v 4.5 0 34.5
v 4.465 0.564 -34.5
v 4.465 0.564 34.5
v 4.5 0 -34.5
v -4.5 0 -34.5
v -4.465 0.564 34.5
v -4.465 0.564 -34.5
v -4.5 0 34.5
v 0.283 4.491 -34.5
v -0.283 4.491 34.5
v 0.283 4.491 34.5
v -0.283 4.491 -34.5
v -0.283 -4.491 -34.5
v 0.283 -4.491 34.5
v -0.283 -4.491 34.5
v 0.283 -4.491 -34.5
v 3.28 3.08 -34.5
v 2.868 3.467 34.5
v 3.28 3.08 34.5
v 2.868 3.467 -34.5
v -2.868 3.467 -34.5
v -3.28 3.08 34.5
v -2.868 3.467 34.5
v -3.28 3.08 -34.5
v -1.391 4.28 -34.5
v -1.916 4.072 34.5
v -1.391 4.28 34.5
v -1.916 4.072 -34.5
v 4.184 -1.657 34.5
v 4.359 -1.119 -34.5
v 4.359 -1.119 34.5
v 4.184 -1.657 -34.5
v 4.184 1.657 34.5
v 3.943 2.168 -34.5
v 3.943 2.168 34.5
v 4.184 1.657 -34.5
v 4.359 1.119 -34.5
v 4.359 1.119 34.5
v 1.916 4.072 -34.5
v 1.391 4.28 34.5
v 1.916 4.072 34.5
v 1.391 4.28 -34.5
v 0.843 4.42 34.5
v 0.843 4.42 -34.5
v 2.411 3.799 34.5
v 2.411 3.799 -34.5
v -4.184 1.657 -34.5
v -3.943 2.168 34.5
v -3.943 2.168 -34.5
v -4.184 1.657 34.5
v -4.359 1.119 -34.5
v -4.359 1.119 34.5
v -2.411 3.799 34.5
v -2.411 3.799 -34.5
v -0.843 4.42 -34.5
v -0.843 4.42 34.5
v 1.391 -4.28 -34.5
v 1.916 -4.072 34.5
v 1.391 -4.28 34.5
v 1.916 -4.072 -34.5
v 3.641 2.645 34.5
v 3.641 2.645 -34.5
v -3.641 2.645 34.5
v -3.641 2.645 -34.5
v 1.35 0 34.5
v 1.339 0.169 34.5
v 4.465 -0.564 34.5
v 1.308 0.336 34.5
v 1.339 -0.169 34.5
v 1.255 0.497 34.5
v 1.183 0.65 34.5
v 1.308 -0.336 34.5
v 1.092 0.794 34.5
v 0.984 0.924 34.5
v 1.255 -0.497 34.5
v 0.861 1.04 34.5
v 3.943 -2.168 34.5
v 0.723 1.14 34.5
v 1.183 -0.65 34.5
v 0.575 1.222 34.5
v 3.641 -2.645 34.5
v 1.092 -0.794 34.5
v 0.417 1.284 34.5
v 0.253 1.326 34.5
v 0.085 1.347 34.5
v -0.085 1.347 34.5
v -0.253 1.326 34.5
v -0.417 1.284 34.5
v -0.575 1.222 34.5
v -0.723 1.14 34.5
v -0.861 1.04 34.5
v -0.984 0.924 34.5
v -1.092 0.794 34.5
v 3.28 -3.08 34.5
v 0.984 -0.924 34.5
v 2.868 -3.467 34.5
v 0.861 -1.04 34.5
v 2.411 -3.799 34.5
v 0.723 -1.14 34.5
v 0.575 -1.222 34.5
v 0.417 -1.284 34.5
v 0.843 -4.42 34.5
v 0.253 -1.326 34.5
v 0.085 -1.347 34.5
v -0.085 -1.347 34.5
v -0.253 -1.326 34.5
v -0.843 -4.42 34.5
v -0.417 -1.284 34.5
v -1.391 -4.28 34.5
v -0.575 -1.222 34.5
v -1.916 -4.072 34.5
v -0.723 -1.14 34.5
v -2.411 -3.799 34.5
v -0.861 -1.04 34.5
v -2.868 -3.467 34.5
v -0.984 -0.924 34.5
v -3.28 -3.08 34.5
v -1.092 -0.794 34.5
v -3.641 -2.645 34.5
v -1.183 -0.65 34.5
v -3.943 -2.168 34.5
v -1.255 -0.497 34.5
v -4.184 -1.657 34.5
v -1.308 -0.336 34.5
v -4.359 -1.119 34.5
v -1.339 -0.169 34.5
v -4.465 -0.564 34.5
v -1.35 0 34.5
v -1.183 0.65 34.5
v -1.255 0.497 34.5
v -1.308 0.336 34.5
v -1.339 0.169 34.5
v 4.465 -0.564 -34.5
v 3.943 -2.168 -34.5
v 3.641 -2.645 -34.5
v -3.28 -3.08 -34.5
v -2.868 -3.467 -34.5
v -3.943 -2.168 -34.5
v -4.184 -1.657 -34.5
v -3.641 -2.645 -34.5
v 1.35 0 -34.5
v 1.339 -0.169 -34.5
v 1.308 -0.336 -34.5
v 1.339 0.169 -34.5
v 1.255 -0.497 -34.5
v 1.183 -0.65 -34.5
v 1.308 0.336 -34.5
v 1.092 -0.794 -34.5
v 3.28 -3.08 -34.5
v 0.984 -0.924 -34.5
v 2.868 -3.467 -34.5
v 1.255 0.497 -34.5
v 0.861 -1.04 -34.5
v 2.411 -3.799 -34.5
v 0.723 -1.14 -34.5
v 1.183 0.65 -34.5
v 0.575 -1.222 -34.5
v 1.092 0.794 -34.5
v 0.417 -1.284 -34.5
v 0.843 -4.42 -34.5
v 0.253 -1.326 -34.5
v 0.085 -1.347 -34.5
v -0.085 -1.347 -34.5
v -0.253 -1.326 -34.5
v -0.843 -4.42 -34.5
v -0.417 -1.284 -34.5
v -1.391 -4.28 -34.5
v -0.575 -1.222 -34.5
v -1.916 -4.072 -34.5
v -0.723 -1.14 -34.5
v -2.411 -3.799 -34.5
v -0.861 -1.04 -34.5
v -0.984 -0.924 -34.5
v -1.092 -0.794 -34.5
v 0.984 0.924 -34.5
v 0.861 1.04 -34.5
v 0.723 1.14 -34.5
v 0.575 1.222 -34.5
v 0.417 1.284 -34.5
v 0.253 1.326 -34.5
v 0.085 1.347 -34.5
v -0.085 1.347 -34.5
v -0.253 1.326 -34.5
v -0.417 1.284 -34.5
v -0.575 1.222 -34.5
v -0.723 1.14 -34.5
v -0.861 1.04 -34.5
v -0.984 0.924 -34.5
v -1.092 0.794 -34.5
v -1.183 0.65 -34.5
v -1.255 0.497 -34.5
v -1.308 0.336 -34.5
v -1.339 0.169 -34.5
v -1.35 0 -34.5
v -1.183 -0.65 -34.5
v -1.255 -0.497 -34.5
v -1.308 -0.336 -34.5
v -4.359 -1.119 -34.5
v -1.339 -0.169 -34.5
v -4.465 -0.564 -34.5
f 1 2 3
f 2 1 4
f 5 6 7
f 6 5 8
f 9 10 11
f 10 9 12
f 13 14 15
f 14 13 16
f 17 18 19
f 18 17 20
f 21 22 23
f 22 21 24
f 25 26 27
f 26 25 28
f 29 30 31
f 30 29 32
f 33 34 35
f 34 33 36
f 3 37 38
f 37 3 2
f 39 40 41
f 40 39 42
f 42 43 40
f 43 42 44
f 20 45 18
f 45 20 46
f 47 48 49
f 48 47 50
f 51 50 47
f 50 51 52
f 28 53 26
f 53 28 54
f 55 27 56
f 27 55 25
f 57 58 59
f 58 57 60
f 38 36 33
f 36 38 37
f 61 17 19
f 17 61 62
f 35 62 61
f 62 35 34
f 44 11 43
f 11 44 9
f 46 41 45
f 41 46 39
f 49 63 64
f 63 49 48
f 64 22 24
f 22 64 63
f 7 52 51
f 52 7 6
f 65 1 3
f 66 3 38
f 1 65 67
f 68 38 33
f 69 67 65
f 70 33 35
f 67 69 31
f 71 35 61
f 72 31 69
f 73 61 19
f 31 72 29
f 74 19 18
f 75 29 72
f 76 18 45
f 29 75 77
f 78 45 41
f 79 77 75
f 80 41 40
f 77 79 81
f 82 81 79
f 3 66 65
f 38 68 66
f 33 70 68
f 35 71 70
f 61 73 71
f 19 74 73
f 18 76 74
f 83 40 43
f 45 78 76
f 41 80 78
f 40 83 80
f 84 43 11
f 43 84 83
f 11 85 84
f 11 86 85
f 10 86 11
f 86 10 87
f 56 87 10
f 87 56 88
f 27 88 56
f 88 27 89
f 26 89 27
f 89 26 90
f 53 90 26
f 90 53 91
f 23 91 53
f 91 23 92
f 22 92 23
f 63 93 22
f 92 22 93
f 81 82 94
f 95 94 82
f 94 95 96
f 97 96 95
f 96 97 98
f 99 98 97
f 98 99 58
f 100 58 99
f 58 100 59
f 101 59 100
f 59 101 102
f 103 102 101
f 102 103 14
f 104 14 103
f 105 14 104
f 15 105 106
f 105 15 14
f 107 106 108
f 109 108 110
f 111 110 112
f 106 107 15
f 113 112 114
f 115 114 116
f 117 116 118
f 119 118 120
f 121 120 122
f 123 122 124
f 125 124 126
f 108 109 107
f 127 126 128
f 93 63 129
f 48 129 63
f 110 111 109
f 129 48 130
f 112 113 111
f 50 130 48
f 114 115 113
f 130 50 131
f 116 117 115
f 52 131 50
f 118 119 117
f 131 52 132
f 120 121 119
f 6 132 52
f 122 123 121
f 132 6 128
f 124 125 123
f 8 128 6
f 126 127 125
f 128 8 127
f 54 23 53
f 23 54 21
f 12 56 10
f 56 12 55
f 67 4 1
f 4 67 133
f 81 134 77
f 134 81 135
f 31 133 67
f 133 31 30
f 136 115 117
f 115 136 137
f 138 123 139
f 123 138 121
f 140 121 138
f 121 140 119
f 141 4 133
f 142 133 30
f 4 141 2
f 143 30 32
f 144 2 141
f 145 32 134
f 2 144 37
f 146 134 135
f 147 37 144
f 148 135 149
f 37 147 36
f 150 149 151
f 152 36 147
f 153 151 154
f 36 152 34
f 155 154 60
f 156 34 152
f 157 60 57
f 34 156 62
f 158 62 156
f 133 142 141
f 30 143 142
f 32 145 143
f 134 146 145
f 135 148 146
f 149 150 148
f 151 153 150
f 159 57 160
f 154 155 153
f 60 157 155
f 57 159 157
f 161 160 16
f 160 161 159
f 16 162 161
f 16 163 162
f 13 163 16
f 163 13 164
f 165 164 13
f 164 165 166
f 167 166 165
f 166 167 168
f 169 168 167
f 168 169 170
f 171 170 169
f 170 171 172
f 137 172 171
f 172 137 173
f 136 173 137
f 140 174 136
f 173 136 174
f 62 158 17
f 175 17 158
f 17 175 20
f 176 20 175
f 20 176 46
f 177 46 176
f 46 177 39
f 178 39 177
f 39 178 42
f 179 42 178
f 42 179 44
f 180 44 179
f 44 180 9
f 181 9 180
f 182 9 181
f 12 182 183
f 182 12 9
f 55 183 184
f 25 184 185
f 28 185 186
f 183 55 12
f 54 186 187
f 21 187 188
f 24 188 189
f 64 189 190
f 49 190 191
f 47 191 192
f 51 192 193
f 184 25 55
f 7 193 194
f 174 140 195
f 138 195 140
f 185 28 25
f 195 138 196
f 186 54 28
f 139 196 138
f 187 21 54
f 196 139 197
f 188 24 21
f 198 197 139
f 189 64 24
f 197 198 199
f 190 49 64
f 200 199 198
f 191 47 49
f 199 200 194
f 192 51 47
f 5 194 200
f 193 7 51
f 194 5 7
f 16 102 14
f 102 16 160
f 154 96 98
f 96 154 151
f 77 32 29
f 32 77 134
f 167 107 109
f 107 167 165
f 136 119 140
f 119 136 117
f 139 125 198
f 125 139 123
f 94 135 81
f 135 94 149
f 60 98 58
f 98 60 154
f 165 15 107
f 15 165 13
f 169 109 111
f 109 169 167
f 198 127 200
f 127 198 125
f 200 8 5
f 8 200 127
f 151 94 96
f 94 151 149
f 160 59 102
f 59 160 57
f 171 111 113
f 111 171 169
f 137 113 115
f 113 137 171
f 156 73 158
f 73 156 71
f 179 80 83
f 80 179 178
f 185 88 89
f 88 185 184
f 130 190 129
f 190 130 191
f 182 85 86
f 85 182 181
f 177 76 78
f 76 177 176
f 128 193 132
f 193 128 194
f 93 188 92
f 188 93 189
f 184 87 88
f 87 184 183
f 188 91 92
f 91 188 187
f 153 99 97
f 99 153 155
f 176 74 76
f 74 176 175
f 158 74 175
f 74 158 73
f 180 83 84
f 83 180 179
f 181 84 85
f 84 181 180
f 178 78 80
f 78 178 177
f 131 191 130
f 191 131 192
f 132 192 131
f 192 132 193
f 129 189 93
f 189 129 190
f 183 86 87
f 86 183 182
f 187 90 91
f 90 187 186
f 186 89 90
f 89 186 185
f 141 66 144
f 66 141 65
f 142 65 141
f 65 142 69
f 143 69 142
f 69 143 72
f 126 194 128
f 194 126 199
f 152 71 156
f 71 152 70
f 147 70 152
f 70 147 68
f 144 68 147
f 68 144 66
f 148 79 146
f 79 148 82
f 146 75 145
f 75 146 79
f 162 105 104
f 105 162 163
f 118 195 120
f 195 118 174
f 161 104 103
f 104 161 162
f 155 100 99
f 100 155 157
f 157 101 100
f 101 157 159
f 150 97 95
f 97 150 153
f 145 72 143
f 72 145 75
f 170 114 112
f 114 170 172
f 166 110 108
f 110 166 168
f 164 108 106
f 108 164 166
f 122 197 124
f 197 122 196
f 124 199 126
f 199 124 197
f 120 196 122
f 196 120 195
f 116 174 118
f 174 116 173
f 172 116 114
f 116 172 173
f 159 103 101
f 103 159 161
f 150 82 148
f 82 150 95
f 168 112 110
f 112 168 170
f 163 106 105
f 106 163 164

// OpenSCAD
$fn = 50;


difference() {
	union() {
		translate(v = [0, 0, -34.5000000000]) {
			cylinder(h = 69, r = 4.5000000000);
		}
	}
	union() {
		translate(v = [0, 0, -100.0000000000]) {
			cylinder(h = 200, r = 1.3500000000);
		}
	}
}
